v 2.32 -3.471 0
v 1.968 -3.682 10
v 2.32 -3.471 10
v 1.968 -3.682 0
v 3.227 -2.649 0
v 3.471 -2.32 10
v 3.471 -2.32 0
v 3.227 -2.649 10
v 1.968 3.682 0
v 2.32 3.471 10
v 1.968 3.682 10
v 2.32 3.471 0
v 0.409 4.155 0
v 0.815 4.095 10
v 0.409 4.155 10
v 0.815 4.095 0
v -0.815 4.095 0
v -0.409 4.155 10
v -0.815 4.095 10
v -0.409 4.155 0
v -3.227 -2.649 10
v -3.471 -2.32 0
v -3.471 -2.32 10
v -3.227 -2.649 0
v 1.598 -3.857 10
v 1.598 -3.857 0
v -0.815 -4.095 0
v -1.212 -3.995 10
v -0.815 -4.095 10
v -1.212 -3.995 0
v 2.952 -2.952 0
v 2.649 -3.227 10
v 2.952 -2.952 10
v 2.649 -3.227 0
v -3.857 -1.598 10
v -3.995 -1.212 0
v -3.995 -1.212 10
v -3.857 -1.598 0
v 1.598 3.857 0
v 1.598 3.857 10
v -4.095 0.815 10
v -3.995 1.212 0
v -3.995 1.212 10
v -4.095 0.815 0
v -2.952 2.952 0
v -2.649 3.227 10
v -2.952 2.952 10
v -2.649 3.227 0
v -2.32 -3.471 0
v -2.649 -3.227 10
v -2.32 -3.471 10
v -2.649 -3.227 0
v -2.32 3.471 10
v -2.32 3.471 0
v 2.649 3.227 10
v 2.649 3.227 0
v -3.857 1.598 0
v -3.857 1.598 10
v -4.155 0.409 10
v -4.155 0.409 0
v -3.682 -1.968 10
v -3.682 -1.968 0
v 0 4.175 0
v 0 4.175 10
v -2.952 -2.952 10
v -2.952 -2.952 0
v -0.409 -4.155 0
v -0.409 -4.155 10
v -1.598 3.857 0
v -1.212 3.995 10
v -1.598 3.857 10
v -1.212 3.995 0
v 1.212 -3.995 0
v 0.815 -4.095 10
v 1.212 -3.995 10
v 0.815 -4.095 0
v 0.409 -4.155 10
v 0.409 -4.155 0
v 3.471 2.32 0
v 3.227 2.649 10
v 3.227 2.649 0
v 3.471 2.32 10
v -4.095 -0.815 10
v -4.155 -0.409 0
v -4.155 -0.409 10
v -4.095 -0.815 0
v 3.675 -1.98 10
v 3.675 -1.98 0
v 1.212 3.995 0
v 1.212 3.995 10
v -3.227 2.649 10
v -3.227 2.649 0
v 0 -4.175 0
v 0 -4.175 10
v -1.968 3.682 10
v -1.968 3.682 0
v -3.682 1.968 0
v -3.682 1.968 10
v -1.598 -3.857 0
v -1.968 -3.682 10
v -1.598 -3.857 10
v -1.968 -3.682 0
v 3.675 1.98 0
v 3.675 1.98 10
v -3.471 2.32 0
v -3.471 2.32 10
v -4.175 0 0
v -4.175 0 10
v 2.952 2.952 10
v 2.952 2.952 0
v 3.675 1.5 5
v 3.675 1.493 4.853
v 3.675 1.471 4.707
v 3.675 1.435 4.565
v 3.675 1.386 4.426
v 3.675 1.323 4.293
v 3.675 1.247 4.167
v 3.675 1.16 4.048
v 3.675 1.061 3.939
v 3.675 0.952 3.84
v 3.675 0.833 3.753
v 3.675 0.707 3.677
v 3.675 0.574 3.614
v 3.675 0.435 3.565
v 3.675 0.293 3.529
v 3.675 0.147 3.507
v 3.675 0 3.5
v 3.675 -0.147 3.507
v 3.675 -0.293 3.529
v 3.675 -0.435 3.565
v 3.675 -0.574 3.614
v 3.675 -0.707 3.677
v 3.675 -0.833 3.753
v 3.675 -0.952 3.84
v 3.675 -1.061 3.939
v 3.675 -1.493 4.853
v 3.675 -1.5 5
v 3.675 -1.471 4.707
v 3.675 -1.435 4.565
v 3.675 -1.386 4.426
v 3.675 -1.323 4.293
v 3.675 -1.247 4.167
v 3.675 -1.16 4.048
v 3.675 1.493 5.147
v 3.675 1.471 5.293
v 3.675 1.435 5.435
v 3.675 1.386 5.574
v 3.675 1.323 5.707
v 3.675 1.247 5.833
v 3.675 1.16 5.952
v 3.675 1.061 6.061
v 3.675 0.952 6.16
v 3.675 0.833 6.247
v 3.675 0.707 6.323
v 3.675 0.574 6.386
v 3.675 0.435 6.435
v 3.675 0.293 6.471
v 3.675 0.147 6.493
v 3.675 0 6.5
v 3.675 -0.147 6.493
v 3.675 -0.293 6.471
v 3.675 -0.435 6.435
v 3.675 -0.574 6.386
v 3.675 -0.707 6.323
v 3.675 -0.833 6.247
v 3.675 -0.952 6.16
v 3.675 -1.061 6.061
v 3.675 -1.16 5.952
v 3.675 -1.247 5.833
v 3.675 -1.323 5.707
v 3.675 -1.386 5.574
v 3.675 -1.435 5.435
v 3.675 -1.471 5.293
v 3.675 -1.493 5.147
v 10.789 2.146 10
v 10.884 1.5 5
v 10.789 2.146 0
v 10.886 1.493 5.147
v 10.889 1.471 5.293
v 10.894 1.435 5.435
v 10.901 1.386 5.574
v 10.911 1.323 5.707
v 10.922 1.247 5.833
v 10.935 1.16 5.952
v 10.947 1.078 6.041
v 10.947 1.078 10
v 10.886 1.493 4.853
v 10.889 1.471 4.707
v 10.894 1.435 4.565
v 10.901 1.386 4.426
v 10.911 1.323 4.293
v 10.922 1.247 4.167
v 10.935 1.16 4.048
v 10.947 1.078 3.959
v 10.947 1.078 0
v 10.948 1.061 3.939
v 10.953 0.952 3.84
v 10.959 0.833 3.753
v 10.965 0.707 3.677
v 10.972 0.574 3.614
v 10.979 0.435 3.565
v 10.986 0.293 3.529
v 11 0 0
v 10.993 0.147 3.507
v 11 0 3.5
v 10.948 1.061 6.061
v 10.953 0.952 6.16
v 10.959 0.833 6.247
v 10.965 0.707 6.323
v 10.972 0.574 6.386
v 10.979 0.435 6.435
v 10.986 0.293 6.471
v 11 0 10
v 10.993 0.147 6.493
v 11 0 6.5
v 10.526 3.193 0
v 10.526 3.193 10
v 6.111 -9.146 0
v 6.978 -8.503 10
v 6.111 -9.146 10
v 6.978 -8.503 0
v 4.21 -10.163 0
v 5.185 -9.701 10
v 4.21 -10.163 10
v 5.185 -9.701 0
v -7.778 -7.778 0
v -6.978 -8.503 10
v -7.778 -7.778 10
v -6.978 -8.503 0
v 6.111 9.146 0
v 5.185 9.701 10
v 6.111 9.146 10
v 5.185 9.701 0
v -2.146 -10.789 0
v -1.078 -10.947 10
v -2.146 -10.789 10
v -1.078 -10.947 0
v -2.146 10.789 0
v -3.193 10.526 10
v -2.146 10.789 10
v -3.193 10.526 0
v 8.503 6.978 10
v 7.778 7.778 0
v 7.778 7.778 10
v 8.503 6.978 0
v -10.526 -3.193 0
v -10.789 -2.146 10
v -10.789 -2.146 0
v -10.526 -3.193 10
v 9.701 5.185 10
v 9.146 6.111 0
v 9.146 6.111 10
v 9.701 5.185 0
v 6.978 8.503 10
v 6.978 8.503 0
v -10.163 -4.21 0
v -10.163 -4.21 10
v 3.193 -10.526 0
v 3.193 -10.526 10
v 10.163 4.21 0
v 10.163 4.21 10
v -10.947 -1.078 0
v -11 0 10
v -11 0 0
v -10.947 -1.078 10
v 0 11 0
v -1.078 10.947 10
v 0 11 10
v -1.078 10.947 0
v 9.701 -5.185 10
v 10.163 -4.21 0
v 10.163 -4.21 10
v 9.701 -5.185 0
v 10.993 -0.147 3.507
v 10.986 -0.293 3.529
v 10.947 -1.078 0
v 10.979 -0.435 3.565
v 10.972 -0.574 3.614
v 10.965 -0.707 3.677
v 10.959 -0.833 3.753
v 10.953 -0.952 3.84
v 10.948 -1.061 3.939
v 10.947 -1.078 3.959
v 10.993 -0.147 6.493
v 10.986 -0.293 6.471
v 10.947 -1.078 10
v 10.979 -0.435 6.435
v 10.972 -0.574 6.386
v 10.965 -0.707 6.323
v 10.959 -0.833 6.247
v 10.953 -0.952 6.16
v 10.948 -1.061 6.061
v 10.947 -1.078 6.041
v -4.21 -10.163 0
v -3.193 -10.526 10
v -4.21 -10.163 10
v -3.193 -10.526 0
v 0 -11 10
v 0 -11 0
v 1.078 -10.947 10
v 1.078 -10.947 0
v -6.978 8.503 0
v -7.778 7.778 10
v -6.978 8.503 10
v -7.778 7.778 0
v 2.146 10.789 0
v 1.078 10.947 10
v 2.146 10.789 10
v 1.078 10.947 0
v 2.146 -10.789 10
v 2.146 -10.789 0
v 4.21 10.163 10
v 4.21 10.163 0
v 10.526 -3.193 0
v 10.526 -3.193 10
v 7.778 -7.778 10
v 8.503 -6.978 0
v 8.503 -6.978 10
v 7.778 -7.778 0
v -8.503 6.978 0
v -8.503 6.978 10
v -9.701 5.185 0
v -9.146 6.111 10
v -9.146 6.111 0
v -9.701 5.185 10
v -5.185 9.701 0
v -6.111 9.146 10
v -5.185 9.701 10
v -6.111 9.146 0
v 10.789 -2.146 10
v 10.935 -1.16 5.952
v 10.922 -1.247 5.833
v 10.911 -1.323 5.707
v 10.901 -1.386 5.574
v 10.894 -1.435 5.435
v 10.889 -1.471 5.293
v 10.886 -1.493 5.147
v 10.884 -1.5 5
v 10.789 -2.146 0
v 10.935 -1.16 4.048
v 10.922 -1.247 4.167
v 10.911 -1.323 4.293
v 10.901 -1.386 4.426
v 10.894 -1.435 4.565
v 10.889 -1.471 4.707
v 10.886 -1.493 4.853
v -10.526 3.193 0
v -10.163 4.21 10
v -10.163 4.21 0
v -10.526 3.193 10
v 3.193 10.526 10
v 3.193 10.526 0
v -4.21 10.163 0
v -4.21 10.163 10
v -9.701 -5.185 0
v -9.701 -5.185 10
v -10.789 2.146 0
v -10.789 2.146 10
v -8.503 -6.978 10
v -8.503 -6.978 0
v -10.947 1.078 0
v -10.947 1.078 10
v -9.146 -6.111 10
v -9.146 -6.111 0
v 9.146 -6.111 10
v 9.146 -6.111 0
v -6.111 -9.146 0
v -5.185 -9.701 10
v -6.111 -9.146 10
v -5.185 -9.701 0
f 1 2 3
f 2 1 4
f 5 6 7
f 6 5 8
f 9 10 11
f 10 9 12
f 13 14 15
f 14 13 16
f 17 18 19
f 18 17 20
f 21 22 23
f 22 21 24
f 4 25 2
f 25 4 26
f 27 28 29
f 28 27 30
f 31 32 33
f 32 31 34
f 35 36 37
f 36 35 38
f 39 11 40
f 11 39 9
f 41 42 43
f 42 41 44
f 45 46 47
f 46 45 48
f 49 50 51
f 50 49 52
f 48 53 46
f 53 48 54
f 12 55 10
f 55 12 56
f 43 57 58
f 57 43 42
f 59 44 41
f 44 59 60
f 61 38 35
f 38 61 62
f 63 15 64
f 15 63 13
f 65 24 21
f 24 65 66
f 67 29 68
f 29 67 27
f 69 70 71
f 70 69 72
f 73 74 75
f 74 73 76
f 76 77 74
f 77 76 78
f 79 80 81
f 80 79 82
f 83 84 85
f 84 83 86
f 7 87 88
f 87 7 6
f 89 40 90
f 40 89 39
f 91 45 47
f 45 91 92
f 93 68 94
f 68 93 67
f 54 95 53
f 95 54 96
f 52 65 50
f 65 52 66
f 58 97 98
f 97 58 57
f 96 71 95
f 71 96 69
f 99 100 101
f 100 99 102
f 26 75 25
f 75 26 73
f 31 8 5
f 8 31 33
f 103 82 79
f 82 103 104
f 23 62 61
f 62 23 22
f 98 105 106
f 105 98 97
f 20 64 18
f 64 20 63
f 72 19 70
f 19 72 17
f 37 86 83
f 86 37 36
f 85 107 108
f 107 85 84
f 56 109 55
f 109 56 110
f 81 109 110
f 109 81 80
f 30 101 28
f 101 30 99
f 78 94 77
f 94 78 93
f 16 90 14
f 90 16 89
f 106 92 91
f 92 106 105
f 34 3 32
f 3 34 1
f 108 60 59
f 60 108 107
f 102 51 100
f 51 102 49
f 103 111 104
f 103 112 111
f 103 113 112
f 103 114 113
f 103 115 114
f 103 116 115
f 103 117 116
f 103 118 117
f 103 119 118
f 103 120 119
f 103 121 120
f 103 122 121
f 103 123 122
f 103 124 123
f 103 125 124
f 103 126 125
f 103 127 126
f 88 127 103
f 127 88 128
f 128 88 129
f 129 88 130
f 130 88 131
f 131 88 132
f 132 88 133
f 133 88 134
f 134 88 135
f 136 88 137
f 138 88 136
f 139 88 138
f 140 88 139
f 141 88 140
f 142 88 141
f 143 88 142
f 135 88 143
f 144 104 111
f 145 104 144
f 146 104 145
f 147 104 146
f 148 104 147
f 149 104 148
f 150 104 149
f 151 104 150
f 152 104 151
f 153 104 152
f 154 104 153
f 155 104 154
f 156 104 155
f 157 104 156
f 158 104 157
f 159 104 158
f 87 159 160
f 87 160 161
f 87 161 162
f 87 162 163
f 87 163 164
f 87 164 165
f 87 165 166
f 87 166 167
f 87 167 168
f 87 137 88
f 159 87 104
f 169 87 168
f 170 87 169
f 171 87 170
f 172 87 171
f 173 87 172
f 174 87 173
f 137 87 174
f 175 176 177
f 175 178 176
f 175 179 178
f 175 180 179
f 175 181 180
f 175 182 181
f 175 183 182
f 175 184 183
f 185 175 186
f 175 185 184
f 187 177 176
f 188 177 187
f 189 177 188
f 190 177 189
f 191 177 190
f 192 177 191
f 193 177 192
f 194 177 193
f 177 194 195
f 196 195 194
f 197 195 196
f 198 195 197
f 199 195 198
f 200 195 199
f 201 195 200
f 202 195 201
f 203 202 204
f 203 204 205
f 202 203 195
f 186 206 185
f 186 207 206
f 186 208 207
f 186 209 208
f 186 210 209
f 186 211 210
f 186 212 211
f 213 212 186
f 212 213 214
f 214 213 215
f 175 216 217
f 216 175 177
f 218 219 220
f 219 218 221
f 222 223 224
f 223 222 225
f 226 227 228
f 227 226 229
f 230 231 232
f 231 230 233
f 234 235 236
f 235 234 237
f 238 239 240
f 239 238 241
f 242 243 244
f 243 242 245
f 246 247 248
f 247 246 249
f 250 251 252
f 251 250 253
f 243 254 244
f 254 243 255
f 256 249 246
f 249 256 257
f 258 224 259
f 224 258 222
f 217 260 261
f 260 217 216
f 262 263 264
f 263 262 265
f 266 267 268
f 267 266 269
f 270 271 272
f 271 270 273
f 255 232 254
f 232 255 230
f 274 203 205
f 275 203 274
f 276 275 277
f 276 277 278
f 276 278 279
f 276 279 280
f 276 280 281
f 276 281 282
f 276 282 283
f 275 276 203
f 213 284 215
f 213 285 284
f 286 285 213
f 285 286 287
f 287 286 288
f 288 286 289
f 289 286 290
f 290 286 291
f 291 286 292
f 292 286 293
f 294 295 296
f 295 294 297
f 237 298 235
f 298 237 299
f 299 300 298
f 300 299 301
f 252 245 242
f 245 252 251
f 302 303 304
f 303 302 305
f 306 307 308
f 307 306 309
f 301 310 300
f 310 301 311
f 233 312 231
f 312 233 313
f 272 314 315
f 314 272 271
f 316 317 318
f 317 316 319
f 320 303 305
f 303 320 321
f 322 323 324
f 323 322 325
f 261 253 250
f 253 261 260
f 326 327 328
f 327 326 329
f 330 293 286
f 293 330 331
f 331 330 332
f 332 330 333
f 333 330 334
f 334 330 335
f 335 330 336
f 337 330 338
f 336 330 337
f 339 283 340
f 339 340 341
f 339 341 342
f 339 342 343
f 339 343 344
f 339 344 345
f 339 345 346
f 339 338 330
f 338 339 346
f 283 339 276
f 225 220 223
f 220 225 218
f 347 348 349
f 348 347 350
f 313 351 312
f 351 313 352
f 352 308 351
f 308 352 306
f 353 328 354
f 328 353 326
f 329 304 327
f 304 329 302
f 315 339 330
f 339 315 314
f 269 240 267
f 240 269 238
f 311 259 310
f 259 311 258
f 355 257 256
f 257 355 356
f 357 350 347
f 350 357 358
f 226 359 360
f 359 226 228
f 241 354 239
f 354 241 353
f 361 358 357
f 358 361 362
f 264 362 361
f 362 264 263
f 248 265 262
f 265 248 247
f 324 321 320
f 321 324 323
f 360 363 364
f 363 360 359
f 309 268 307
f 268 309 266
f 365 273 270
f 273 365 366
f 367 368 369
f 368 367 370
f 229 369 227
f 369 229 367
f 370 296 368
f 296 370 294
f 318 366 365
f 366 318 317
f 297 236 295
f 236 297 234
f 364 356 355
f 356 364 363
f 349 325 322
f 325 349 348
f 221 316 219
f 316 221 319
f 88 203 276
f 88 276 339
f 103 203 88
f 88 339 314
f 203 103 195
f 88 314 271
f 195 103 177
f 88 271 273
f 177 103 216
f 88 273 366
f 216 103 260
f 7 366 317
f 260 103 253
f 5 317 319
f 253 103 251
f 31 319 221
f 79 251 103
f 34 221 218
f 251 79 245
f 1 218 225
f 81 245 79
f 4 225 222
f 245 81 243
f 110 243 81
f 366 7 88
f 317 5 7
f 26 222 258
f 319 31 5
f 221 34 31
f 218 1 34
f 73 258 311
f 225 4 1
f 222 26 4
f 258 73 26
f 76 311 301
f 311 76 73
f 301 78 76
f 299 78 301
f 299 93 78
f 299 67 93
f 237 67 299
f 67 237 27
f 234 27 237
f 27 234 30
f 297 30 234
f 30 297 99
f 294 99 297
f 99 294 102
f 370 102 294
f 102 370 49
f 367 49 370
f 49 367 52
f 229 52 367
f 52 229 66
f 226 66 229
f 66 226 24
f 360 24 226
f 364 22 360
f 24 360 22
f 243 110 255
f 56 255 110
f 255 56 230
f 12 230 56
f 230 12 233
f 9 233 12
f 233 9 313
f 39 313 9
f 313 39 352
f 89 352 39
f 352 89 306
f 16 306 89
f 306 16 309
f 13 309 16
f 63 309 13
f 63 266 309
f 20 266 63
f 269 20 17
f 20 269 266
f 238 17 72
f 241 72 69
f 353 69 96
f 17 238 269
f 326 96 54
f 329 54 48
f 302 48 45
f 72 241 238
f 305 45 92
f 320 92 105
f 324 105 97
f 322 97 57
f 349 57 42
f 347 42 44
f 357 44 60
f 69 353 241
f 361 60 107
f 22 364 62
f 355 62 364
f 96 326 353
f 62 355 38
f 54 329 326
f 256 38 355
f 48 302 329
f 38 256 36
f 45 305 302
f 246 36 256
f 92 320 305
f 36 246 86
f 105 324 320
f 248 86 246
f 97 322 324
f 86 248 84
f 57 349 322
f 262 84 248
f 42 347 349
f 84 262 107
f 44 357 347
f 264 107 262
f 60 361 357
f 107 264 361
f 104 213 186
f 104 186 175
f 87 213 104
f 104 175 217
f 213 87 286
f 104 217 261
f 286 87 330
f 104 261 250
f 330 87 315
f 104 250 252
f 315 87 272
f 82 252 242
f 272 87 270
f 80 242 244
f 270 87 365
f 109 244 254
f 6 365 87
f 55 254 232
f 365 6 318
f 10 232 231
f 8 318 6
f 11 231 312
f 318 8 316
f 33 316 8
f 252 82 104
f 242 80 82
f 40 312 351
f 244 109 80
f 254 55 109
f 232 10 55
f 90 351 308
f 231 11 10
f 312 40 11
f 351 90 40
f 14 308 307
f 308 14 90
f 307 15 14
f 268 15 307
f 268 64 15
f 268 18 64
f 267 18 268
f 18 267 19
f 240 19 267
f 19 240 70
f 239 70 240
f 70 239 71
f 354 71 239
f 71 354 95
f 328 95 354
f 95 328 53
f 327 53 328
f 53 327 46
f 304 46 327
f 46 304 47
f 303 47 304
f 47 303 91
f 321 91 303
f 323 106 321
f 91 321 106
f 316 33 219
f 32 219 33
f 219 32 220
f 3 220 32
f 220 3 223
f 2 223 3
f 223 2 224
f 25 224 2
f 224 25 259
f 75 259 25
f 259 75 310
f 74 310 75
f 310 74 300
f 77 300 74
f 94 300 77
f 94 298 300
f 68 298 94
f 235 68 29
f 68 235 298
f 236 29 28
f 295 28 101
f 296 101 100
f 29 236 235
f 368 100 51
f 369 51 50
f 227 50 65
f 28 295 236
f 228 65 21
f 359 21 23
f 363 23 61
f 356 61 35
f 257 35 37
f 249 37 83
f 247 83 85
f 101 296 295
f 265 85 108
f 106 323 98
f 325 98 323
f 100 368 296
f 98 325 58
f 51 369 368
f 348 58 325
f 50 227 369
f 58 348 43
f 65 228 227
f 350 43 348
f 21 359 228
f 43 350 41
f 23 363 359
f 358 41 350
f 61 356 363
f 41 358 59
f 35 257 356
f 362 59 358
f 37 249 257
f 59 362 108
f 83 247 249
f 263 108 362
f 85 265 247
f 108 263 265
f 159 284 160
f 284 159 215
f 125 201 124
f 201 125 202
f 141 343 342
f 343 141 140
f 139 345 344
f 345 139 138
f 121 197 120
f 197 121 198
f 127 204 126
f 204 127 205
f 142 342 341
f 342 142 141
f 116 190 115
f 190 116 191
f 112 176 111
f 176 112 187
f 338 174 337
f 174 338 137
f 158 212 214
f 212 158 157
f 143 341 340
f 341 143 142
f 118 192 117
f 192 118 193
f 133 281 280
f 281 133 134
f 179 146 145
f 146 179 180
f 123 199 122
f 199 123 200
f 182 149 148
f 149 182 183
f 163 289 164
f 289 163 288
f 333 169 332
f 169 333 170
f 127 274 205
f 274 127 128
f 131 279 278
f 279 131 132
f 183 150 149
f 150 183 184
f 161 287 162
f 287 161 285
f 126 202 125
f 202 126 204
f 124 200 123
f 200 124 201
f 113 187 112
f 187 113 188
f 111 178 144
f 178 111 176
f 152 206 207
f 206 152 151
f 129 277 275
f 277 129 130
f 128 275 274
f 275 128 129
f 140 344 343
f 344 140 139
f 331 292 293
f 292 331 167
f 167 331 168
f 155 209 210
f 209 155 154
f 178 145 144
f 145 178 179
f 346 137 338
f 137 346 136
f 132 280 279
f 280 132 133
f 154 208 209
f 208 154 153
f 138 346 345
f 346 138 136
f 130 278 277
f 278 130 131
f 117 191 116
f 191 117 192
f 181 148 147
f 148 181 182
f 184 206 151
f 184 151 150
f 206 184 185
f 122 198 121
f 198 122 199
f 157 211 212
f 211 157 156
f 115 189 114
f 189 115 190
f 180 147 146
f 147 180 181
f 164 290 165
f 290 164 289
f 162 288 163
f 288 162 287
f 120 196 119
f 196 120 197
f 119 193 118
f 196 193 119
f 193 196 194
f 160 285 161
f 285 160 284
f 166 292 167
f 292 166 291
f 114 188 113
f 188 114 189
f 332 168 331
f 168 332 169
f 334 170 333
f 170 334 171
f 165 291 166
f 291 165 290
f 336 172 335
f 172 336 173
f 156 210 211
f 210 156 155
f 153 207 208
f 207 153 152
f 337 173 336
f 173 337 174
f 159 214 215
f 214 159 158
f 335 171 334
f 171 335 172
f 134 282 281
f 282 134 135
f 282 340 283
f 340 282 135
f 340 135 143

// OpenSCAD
// file: parameters.scad
// =============================================================================
// Gen-BR — nightly 2026-10-09 (physics_scorer, honest magpylib watts)
// Rotor-only swap for Gen-BO: the diametric Ø5 assists move from ±7 mm to ±6.2 mm around the R50 pole ring (R43.8/50/56.2), the closest spacing that still leaves a 0.9 mm printed web between Ø5.3 pockets (rule ≥0.8). Everything else — bobbins, 595 t windings, stator, Ø134 steel — is Gen-BO. Tonight's 138-row refine scan (ring radius 49–51, coil radii ±0.5, build ±0.4, copper height 7.9–8.3) found nothing better: the 8p/6c flush-seat family is saturated under the ~370 m wire budget, so this is a hair-width step (about +0.2 % over Gen-BO), not a breakthrough.
// Clocking 0 deg (magnets N facing S) + D-flat keyed bore + index notch + flip-symmetric hole map.
// Windable 2-piece bobbin; turns = physics_scorer turns_fit; copper only between flanges.
// Steel back-iron: 2× Ø134 × 4.76 mm (3/16") mild-steel discs (steel_backiron_disc.dxf); magnets sit ON the steel
// (through-pockets) -> score with --back-iron.
// =============================================================================
topology            = "dual_rotor";

// --- Wire / winding (physics_scorer winding-fit) -------------------------------
wire_awg            = 26;
wire_od             = 0.45;     // insulated OD mm (bare 0.405)
fill_realistic      = 0.65;     // insulated-wire area / window (DENSE layered wind with a jig; scorer cap 0.65)
turns               = 595;       // = physics_scorer turns_fit (do NOT raise)
coil_former_type    = "bobbin";
coil_core_inset     = 18.00;     // radial copper build: hub = copper boundary inset by this
wind_build_axial    = 0.0;      // nothing proud of the flanges
wind_build_radial   = 0.0;

// --- Bobbin (base + lid) ---------------------------------------------------------
coil_id_r           = 28.00;    // copper boundary sector
coil_od_r           = 70.00;
span_deg            = 53.24;    // = pitch - 2*asin((wall+0.85)/coil_id_r) -> >=1.2 mm stator web
former_web          = 8.10;     // copper height between flanges (TALL copper: steel keeps Bz up)
flange_t            = 0.80;     // >= 0.8 mm FDM wall rule (tall winds push on the flanges)
wall                = 0.80;     // flange lip beyond copper
former_bare_h       = former_web + 2 * flange_t;
coil_envelope_h     = former_bare_h + 2 * wind_build_axial;
tab_w               = 7.0;
tab_len             = 7.0;
tab_h               = former_bare_h / 2;
pin_d               = 1.9;      // 1.75 mm filament locating pin
coil_mount_r        = coil_od_r + 0.2 + 4.0;
lead_y              = 1.6;
lead_slot_w         = 0.9;
lead_groove_d       = 0.6;

// --- Gap -------------------------------------------------------------------------
run_clear           = 0.50;     // rotor face -> flange
gap_spacer_h        = run_clear + wind_build_axial;
m2m                 = coil_envelope_h + 2 * run_clear;   // rotor face to rotor face (= gap_sleeve length)

// --- Stator ----------------------------------------------------------------------
coil_stations       = 6;
bay_clear           = 0.25;
stator_thick        = former_bare_h;                        // bobbins flush both faces
stator_od           = 158;
shaft_clear_stator  = 14.0;     // stator is static; gap sleeve OD 12 spins inside

// --- Rotor(s) --------------------------------------------------------------------
magnet_Br           = 1.43;     // N52
magnet_d_large      = 20.0;
magnet_h_large      = 5.0;      // one O20x5 per pocket
magnet_h_small      = 5.0;      // one O5x5 per pocket
halbach_magnetisation = "diametric"; // O5x5 assist magnets MUST be DIAMETRICALLY magnetised (tangential)
rotor_b_same_axis   = true;     // same-index magnets share one axis: N faces S across the gap
large_pocket_d      = 20.3;
small_pocket_d      = 5.3;
pocket_h            = 5.00;     // THROUGH the carrier: magnet back face sits on the steel disc (FLUSH seat: carrier = magnet height, magnet face level with the rotor face)
large_n             = 8;
R_large             = 50.0;
R_small_inner       = 43.8;
R_small_mid         = 50.0;
R_small_outer       = 56.2;
small_r_list        = [R_small_inner, R_small_mid, R_small_outer];   // O5 pockets between poles
carrier_od          = 134.0;
carrier_thick       = pocket_h;
hub_h               = 12.0;     // > steel_t + insert: radial set-screw clears the steel
hub_od              = 24.0;     // slim hub so the M4 brace rods fit at R~18 inside the coil ring
hub_insert_d        = 4.0;      // M3 heat-set insert, radial, bears on the D-flat
rotor_b_offset_deg  = 0.0;      // CLOCKING: magnets directly opposite
shaft_key           = "dflat";
dflat_depth         = 0.5;      // 8 mm shaft with 0.5 mm flat (7.5 across flat)
index_notch_d       = 3.0;

// --- Steel back-iron (buyable laser-cut) -------------------------------------------
steel_t             = 4.76;      // mild steel thickness (image method ignores it; sized from steel_flux.py so the return path stays well below saturation)
steel_center_hole   = 26.0;     // slips over the rotor hub (OD 24)
steel_od            = carrier_od;   // steel disc OD = rotor carrier OD

// --- Modular MAX interface ----------------------------------------------------------
shaft_bore          = 8.35;
dflat_x             = 4.0 - dflat_depth + (shaft_bore - 8.0) / 2;
bearing_d           = 21.85;
bearing_h           = 7.2;
m3_clear            = 3.5;
bolt_r_inner        = 30.0;     // M3 steel-disc clamp bolts (inside the magnet ring)
bolt_n_inner        = 4;
bolt_inner_angles   = [0, 90, 180, 270];
bolt_r_outer        = 63.0;     // M3 steel-disc clamp bolts (outside the magnet ring)
bolt_outer_angles   = [45, 135, 225, 315];
flange_bolt_r       = 73.0;     // frame rods: OUTSIDE the rotor OD (rotors spin inside them)
flange_bolt_n       = 6;
flange_bolt_offset  = 30.00;    // between coil stations -> never cuts a lead groove/tab
brace_r             = 18.0;
brace_d             = 4.3;      // temporary M4 jack rods (assembly only)
brace_n             = 4;
brace_angles        = [45, 135, 225, 315];          // flip-symmetric

spacer_pad_od       = 14.0;
spacer_pad_id       = m3_clear;
endbell_od          = 158;
endbell_thick       = 8.0;
endbell_shaft_clear = 10.0;
collar_h            = 10.0;
standoff_od         = 9.0;
frame_standoff_h    = run_clear + carrier_thick + hub_h + collar_h + 2.0;
sleeve_od           = 12.0;
plate_max_mm        = 410;

$fn = 64;
// main file
// Gen-BR — shaft collar with D-flat bore (set screw bears on the flat); print x4
include <parameters.scad>;
$fn = 64;
// D-flat keyed bore: flat faces +X (angle 0 = magnet pocket 0 = index notch)
module dflat_bore(h) {
    intersection() {
        cylinder(d=shaft_bore, h=h);
        translate([-shaft_bore, -shaft_bore, 0]) cube([shaft_bore + dflat_x, 2*shaft_bore, h]);
    }
}

od = 22; h = collar_h; set_d = 3.0;
difference() {
    cylinder(d=od, h=h);
    translate([0, 0, -0.1]) dflat_bore(h + 0.2);
    translate([0, 0, h/2]) rotate([0, 90, 0]) cylinder(d=set_d, h=od);
}
